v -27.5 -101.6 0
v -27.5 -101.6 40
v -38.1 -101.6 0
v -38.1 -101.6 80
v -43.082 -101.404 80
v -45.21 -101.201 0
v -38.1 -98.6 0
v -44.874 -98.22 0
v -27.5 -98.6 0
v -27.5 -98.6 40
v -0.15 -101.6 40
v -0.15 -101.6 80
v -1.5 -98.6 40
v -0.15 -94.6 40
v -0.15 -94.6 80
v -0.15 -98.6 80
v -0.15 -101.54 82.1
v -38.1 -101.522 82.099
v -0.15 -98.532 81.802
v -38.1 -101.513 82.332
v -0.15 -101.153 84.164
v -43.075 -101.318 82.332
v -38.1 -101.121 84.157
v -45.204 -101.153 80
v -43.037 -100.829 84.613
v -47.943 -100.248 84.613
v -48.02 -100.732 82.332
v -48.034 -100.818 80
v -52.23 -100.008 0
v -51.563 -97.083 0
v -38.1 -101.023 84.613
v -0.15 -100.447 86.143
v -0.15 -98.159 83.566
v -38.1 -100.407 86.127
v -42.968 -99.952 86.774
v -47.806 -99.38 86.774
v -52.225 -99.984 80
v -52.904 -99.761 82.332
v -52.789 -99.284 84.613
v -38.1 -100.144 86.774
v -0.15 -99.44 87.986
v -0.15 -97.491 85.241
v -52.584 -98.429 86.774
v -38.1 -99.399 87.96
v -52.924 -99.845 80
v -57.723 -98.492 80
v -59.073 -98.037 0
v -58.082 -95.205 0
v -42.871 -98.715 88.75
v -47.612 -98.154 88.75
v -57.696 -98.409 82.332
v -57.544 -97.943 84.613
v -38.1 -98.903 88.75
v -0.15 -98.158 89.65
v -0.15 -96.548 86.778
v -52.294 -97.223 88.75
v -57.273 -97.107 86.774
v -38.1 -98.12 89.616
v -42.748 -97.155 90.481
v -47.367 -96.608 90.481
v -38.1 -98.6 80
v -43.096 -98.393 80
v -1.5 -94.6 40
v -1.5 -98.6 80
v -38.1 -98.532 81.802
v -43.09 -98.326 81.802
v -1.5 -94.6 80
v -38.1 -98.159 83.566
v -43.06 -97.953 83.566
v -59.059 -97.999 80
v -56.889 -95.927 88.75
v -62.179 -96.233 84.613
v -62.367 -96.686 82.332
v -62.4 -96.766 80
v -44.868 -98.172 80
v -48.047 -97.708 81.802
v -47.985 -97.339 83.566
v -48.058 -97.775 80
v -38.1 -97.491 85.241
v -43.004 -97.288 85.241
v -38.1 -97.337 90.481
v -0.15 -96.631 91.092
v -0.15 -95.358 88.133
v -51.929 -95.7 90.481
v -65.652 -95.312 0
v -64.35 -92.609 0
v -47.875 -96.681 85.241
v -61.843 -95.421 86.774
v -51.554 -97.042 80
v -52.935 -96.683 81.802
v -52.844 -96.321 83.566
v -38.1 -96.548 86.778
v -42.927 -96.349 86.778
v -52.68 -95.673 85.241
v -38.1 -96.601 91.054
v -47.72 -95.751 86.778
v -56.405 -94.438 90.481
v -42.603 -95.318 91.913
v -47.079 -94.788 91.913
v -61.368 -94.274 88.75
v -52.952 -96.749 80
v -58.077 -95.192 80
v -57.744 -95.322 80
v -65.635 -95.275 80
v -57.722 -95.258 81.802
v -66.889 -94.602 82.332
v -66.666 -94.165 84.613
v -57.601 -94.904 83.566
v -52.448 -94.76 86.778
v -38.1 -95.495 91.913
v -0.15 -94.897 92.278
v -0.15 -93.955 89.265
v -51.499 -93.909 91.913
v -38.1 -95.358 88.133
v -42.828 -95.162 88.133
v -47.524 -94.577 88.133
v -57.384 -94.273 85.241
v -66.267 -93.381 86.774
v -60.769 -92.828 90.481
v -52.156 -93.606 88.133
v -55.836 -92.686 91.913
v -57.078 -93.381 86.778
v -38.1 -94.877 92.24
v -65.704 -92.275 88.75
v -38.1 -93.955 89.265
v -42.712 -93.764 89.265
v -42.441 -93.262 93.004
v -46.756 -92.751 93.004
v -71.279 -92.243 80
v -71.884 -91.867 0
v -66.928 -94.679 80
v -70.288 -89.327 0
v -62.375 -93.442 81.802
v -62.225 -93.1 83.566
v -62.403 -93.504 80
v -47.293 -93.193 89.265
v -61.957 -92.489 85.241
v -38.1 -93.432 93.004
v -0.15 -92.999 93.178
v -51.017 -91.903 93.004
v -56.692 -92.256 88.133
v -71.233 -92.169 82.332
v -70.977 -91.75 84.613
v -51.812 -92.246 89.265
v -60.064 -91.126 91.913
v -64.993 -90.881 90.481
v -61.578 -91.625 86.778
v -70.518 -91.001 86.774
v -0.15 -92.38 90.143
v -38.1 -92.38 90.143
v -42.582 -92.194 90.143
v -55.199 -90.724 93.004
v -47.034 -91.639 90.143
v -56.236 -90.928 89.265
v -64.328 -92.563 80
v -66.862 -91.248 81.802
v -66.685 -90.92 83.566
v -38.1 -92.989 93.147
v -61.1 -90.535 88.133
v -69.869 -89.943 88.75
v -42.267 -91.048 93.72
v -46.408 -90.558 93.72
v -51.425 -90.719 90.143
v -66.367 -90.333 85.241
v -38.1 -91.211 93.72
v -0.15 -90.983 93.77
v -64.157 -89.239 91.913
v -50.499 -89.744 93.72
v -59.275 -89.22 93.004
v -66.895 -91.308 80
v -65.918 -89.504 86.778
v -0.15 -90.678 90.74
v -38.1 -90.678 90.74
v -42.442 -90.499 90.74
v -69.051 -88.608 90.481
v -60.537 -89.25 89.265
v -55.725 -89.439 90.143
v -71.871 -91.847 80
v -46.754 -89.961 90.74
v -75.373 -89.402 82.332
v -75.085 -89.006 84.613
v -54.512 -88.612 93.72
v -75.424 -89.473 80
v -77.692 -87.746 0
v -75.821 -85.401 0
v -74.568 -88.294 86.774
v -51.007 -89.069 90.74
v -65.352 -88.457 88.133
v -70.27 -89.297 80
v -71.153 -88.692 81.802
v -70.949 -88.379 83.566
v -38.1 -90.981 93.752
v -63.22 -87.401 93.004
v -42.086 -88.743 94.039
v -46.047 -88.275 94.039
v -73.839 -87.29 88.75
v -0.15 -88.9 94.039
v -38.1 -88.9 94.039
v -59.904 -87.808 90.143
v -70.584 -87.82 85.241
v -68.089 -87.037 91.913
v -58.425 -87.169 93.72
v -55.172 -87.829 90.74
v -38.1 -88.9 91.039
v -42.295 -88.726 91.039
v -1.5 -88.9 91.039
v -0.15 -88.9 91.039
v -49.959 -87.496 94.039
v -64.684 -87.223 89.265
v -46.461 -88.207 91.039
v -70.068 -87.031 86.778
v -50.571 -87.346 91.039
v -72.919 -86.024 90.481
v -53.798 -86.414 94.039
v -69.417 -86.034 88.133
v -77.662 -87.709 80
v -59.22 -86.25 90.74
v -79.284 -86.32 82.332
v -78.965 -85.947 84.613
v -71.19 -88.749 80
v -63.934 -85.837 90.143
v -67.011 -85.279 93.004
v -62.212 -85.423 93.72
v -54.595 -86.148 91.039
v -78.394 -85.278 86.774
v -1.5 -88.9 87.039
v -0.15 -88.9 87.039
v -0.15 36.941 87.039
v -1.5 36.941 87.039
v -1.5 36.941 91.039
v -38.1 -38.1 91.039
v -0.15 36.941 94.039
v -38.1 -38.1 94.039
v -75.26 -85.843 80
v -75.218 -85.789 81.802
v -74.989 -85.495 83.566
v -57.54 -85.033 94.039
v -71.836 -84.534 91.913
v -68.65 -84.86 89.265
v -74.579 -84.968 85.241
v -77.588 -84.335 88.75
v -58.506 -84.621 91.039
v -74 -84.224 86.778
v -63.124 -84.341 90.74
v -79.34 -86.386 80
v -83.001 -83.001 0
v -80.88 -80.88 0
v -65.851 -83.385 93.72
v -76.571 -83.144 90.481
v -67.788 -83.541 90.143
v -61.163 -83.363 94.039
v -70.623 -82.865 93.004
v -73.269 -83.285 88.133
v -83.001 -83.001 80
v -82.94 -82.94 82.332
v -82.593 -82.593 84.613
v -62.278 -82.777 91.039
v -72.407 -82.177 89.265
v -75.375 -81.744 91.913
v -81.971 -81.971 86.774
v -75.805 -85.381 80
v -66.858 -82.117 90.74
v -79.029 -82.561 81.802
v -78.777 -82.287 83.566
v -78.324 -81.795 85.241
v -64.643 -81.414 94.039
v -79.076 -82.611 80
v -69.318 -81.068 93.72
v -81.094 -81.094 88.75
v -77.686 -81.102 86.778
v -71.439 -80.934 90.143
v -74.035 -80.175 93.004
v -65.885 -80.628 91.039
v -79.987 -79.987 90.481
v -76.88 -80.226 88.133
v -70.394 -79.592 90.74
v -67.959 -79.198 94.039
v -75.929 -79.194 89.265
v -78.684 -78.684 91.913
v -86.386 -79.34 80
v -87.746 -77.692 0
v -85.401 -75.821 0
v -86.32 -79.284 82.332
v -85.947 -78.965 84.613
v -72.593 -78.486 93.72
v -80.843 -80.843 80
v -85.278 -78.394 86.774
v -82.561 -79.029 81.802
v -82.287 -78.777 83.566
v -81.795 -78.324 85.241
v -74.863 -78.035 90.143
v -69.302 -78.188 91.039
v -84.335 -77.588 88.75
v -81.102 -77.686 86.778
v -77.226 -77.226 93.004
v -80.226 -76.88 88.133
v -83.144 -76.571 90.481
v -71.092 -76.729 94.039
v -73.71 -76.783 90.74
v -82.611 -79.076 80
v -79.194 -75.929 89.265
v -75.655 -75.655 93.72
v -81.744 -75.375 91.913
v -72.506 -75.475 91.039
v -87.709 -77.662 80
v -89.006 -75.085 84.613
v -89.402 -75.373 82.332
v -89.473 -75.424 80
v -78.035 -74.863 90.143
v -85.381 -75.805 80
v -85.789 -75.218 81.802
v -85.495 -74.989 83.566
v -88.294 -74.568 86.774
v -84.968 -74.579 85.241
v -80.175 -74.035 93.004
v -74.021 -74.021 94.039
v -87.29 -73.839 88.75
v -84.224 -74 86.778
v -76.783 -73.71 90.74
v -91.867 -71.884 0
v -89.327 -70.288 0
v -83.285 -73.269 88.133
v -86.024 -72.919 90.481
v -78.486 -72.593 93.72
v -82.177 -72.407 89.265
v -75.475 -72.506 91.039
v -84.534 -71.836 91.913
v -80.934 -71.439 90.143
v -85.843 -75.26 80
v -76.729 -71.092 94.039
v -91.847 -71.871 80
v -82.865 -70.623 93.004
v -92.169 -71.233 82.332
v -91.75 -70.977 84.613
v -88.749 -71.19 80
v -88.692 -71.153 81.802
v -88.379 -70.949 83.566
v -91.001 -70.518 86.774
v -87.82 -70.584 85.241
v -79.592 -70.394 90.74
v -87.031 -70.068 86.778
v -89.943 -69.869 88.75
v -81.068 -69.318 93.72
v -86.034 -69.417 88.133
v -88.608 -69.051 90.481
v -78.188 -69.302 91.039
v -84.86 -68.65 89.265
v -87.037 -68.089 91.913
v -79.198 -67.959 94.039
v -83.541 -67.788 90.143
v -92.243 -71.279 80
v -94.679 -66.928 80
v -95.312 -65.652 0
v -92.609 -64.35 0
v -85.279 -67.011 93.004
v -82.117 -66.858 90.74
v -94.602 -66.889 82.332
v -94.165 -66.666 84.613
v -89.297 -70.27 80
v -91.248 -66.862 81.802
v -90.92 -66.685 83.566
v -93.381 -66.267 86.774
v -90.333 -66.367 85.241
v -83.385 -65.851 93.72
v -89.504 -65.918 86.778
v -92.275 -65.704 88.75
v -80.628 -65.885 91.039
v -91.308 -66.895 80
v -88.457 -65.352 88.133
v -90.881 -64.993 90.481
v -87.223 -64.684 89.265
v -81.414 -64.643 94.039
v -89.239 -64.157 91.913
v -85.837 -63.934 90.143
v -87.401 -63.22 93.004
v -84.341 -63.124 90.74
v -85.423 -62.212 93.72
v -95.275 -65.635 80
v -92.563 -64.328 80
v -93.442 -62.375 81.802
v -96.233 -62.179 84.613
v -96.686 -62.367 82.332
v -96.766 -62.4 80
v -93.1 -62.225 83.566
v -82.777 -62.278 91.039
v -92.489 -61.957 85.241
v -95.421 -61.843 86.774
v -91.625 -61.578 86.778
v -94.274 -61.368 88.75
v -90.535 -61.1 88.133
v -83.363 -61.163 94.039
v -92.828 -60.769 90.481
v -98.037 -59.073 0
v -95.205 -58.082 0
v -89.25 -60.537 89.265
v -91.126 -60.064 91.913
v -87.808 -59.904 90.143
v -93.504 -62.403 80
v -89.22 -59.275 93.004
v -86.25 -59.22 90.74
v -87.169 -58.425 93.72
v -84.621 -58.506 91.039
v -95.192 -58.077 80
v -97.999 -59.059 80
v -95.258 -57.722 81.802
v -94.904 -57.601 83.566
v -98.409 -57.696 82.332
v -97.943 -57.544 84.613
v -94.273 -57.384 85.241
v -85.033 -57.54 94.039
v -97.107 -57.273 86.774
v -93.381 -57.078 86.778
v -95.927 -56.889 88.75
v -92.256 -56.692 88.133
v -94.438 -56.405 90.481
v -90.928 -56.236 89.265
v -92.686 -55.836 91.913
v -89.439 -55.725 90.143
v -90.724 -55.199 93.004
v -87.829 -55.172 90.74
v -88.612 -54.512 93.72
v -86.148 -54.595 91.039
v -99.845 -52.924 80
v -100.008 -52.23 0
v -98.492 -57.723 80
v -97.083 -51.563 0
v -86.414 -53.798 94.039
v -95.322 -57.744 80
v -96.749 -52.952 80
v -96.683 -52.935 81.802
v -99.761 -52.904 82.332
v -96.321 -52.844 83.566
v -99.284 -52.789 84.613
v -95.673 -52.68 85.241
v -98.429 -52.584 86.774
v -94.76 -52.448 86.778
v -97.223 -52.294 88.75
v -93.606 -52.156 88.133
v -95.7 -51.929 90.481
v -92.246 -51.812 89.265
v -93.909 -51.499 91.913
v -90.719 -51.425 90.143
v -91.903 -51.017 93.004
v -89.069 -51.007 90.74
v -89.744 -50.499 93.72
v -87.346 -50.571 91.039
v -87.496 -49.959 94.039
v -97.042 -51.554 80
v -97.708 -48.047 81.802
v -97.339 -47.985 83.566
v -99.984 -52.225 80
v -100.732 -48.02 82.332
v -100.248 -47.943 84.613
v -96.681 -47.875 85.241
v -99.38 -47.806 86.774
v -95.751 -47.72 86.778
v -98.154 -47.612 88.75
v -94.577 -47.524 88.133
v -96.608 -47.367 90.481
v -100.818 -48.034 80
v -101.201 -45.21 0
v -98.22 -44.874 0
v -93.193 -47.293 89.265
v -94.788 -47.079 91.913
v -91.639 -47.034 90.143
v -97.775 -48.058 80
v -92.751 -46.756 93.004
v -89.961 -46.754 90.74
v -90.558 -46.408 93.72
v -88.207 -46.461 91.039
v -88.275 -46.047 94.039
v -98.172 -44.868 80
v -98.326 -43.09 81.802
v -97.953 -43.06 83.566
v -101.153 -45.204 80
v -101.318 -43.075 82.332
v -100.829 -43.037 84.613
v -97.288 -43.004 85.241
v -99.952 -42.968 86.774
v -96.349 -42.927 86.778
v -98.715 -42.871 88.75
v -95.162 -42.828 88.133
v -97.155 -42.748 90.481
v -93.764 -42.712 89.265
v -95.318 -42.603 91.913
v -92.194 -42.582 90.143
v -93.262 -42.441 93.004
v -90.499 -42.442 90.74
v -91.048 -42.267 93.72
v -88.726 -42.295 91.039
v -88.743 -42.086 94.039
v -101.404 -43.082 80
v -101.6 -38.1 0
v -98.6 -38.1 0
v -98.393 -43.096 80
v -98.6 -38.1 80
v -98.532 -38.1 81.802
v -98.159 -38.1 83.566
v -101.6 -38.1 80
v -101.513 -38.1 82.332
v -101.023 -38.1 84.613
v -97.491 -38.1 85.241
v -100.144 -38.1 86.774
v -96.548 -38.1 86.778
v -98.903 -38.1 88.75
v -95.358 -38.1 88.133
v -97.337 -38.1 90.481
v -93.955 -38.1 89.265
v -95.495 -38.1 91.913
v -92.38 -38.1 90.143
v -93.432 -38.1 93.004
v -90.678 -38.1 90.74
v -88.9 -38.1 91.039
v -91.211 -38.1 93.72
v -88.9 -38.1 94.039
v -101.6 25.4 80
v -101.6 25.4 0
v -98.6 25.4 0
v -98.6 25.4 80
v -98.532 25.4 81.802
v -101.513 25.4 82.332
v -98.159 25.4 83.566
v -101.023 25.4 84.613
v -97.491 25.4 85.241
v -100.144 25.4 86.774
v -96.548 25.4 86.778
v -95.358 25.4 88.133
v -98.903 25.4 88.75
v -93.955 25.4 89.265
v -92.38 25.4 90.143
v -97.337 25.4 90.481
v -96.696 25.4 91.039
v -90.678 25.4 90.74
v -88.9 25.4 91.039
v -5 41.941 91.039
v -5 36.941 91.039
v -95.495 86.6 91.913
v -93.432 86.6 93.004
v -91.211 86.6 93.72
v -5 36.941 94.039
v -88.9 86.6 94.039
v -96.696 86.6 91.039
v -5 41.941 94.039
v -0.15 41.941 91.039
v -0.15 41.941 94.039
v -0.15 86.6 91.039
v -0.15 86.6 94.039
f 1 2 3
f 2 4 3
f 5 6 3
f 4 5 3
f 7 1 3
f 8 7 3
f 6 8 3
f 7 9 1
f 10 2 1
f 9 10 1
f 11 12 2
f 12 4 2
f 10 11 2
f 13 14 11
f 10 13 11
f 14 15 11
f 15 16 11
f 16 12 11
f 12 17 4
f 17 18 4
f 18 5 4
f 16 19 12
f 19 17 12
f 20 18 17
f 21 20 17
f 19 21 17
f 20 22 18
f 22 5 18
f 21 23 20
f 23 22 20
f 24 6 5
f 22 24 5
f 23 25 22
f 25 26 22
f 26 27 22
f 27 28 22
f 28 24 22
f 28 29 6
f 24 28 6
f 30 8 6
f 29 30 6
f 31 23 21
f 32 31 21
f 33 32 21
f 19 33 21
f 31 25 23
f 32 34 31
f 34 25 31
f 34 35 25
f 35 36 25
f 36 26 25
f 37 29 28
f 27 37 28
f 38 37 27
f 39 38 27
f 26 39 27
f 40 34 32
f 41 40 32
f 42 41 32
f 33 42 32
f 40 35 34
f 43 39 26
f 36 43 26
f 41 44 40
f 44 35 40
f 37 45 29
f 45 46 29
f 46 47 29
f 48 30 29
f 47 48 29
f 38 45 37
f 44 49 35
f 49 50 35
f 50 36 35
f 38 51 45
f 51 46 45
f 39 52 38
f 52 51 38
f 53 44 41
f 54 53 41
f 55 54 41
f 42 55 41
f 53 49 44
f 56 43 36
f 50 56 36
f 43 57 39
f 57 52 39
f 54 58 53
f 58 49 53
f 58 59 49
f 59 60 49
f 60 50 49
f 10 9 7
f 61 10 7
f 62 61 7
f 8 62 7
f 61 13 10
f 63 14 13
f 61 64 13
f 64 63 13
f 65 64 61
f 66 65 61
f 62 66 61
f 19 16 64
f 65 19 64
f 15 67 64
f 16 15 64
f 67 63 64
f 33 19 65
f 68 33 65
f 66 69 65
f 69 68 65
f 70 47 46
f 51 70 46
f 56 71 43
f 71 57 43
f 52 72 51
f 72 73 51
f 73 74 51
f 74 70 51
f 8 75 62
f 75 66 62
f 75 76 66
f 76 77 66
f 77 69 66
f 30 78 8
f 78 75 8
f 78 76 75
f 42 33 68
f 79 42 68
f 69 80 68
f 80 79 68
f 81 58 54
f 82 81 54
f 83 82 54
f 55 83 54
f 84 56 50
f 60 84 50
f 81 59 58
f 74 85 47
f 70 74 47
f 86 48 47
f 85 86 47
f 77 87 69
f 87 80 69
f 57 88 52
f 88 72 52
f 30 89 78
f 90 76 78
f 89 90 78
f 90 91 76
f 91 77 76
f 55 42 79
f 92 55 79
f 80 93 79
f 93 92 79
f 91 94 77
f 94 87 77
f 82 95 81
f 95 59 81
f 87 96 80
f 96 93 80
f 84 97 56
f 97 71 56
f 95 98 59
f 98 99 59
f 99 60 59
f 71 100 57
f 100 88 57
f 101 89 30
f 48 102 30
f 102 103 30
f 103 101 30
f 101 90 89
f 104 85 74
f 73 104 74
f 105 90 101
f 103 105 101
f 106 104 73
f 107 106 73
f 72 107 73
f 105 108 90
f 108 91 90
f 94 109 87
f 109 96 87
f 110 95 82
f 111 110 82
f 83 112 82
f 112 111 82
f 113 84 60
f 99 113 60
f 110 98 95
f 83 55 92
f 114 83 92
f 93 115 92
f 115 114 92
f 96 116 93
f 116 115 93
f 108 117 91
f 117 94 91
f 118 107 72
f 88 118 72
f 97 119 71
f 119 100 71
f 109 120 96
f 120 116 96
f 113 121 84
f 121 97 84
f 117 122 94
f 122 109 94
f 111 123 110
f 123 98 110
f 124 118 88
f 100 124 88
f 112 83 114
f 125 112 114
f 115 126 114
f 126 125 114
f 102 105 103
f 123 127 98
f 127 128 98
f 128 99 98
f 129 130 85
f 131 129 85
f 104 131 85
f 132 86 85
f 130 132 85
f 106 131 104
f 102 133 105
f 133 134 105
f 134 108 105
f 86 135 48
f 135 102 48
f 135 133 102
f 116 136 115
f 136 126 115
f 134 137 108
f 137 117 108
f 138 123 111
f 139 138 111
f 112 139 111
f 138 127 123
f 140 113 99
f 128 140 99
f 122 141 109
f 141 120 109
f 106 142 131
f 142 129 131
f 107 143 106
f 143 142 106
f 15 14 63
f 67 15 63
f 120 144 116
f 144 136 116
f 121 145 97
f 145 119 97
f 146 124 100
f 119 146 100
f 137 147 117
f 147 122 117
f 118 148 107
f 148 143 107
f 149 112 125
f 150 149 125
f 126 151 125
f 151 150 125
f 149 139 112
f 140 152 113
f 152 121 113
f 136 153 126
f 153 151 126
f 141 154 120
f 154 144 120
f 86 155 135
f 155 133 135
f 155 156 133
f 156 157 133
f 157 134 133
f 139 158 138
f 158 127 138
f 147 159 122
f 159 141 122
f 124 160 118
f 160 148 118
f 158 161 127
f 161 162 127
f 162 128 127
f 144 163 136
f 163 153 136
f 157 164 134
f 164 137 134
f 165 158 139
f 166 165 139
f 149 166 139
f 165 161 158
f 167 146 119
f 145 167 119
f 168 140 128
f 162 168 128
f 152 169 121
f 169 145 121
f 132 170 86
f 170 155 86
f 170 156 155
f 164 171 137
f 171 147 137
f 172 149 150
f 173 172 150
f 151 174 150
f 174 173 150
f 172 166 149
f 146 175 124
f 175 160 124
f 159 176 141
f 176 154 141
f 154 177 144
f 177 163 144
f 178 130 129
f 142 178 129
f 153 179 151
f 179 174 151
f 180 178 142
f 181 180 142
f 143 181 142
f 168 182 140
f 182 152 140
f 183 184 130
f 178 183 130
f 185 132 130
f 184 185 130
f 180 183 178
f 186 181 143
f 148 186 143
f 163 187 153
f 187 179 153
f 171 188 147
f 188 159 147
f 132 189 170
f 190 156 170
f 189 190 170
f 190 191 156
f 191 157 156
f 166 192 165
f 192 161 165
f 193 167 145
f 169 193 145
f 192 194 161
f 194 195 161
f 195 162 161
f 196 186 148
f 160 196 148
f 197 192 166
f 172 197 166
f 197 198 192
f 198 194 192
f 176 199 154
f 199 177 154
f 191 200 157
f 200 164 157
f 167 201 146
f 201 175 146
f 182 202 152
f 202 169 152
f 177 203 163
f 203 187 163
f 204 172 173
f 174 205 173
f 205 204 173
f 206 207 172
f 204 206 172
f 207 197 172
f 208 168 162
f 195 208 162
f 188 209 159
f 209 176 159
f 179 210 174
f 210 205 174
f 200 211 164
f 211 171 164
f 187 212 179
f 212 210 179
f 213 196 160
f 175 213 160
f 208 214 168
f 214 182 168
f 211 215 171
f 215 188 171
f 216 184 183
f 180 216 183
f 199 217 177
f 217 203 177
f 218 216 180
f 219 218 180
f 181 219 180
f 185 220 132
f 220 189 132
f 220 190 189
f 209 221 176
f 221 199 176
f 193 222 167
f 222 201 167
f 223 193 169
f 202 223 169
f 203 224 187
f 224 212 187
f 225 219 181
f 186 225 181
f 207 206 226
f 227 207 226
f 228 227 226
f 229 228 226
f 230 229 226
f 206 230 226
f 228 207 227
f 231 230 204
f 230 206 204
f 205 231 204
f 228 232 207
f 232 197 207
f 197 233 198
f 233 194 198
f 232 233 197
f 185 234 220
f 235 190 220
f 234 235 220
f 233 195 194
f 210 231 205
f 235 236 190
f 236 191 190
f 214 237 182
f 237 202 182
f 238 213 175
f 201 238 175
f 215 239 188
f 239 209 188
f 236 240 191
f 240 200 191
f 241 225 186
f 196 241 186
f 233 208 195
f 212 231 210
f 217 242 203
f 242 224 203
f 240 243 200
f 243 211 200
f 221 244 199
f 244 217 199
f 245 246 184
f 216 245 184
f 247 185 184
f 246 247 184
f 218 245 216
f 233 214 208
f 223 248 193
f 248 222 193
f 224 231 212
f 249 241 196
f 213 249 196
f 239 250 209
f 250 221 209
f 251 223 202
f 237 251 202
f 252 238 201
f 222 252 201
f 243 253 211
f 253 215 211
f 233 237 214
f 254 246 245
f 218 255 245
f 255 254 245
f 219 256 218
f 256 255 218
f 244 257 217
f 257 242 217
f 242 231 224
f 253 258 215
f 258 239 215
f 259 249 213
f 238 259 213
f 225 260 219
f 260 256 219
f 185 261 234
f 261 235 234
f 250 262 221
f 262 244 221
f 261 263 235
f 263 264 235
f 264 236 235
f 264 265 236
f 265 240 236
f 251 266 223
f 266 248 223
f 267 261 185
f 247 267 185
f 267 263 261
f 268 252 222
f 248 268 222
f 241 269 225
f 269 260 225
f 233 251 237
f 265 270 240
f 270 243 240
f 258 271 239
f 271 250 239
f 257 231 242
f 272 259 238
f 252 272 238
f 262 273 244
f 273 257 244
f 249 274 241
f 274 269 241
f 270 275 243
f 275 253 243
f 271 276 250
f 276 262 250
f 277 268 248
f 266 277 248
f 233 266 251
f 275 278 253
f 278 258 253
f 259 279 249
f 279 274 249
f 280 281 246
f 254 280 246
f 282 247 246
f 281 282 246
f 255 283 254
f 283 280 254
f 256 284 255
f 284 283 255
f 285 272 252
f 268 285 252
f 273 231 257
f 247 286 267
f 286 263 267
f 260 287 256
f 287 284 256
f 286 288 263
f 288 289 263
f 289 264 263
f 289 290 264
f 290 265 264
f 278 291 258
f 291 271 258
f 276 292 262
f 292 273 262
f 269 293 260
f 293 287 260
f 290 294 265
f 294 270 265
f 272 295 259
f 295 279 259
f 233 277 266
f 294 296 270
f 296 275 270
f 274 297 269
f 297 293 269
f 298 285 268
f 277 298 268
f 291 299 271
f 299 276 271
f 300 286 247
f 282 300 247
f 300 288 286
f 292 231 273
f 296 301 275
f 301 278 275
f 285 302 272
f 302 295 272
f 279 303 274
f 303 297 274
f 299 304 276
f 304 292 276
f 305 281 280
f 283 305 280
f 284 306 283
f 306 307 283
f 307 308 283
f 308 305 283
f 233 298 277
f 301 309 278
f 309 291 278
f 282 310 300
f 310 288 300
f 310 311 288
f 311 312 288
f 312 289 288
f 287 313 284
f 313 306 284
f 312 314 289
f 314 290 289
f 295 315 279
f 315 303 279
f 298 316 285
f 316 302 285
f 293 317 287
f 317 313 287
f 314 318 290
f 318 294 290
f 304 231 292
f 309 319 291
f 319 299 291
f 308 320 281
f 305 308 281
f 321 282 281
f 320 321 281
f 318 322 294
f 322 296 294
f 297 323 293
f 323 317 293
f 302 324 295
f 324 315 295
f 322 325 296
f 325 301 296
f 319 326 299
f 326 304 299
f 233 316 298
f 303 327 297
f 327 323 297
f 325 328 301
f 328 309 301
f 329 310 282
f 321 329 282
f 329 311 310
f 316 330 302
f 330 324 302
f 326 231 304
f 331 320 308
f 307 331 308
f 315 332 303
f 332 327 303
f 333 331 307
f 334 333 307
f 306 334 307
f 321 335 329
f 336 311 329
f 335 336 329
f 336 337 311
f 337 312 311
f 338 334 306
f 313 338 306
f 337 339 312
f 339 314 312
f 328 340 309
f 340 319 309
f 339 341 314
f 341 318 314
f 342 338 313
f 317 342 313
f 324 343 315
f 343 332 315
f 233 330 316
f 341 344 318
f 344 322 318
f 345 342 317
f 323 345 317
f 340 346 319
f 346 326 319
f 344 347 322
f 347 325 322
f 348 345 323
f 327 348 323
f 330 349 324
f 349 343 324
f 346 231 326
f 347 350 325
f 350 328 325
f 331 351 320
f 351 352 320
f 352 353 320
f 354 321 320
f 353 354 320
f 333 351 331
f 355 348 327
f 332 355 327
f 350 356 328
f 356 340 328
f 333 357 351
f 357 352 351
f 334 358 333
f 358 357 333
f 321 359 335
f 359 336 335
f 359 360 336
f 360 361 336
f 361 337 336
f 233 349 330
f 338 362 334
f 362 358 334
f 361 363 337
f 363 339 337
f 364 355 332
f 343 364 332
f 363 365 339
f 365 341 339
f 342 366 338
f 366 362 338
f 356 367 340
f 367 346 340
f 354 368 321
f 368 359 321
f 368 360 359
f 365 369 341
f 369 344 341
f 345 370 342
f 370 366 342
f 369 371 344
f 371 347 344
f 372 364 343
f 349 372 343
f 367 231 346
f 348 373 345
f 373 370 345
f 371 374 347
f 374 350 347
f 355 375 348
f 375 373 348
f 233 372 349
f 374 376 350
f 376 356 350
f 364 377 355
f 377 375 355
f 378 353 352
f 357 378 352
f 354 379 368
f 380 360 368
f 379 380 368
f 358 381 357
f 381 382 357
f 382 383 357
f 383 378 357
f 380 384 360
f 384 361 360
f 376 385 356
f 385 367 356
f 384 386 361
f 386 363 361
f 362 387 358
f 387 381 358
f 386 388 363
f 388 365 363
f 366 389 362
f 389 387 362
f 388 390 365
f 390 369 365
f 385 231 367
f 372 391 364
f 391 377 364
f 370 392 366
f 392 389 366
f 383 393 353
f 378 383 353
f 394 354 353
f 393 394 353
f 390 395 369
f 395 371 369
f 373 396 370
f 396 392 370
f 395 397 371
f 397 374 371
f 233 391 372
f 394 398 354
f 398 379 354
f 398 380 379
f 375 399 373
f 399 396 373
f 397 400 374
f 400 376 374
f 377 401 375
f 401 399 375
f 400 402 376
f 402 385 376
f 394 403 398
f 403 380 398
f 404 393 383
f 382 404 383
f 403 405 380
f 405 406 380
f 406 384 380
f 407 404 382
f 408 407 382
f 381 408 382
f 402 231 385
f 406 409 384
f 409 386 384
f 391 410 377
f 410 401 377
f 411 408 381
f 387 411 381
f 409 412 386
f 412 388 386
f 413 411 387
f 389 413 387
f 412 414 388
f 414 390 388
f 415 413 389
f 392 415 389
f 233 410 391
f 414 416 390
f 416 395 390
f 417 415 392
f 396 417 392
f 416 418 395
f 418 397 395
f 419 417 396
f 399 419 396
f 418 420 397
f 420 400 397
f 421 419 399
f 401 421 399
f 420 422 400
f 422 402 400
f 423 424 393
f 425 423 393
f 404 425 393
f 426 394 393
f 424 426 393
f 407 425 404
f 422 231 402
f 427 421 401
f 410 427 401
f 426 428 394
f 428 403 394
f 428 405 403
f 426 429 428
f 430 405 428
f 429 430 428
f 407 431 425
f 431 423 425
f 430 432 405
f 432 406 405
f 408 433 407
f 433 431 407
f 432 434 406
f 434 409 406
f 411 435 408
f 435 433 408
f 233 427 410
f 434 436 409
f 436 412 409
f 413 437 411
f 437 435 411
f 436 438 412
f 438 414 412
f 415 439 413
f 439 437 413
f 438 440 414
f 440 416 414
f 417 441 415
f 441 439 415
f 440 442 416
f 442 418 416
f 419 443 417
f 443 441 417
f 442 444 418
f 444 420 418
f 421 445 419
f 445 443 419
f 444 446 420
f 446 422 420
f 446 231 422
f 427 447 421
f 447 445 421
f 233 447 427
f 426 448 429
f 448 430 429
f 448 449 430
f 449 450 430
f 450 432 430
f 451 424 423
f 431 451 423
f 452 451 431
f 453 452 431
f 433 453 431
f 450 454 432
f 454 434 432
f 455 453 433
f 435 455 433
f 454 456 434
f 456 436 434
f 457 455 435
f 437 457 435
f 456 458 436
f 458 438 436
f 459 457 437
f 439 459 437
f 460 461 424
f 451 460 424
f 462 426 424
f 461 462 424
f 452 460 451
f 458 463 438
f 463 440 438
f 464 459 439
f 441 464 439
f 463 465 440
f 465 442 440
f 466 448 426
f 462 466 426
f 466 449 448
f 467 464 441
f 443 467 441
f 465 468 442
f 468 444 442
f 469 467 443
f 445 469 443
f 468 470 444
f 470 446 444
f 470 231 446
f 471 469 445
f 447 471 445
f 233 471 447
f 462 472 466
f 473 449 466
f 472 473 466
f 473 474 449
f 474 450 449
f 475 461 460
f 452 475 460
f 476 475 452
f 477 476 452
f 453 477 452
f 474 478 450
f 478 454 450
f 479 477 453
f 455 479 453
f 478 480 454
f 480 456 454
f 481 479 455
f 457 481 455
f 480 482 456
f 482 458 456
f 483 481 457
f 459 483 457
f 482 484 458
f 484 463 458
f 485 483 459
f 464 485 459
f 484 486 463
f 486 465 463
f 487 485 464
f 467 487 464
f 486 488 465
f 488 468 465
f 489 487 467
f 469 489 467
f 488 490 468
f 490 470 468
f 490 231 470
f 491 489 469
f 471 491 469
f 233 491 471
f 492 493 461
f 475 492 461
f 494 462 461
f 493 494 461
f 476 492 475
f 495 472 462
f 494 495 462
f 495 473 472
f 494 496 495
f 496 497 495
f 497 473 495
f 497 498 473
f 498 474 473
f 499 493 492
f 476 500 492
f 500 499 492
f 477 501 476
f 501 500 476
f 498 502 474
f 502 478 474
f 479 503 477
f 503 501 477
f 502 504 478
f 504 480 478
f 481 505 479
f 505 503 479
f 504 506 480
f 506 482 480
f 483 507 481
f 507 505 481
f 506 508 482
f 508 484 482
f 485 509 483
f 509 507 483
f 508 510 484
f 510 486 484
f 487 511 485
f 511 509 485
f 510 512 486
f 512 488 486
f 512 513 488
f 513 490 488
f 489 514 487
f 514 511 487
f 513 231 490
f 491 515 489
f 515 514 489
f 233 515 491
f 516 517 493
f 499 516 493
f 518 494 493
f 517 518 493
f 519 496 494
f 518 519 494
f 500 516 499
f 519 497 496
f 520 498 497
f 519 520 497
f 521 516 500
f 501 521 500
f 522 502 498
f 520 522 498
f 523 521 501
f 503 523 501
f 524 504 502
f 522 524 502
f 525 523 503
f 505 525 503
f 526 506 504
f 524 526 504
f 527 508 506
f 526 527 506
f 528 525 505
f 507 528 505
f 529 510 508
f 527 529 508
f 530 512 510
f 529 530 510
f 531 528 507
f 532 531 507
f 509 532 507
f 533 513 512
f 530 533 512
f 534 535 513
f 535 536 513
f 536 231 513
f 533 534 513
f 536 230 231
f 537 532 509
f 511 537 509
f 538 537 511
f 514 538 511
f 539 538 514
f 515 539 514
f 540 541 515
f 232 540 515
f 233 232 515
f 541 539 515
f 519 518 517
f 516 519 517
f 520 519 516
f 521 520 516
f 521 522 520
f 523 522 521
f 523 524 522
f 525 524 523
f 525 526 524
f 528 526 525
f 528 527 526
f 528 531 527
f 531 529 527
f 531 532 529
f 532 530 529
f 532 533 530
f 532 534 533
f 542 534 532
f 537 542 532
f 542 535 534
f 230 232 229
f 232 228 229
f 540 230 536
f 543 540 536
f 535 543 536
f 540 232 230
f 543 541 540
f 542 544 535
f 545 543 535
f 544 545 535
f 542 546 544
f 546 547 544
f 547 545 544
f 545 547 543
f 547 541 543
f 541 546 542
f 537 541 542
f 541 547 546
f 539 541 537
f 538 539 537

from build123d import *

# Parameters (mm, degrees)
BOSS_EXTRUDE1_DEPTH = 60
SKETCH6_W           = 76.2
SKETCH6_H           = 139.7
BOSS_EXTRUDE3_DEPTH = 3
SKETCH7_W           = 254.695348458
SKETCH7_H           = 135.329086622
CUT_EXTRUDE1_DEPTH  = 76.2
SKETCH8_W           = 10
SKETCH8_H           = 5
CUT_EXTRUDE2_DEPTH  = 172.74190537
SKETCH9_W           = 55
SKETCH9_H           = 40
CUT_EXTRUDE3_DEPTH  = 246.885251985
SKETCH10_W          = 200.764393162
SKETCH10_H          = 14.388440844
CUT_EXTRUDE4_DEPTH  = 15
BOSS_EXTRUDE4_DEPTH = 4
BOSS_EXTRUDE5_DEPTH = 4
SKETCH13_W          = 181.59007752
SKETCH13_H          = 354.992238287
CUT_EXTRUDE5_DEPTH  = 101.75


with BuildPart() as part:
    # Sketch1 → Boss-Extrude1 (new body)
    with BuildSketch(Plane.XY):
        with BuildLine():
            Line((-101.6, 101.6), (-101.6, -38.1))
            ThreePointArc((-101.6, -38.1), (-83.001280605, -83.001280605), (-38.1, -101.6))
            Line((-38.1, -101.6), (38.1, -101.6))
            ThreePointArc((38.1, -101.6), (83.001280605, -83.001280605), (101.6, -38.1))
            Line((101.6, -38.1), (101.6, 101.6))
            Line((101.6, 101.6), (-101.6, 101.6))
        make_face()
        with BuildLine():
            Line((-98.6, 98.6), (-98.6, -38.1))
            ThreePointArc((-98.6, -38.1), (-80.879960262, -80.879960262), (-38.1, -98.6))
            Line((-38.1, -98.6), (38.1, -98.6))
            ThreePointArc((38.1, -98.6), (80.879960262, -80.879960262), (98.6, -38.1))
            Line((98.6, -38.1), (98.6, 98.6))
            Line((98.6, 98.6), (-98.6, 98.6))
        make_face(mode=Mode.SUBTRACT)
    extrude(amount=BOSS_EXTRUDE1_DEPTH)

    # Sweep2: sweep along a path in Sketch5
    with BuildLine(Plane.XY.offset(60)) as sweep2_path:
        Line((-100.1, 101.6), (-100.1, -38.1))
        ThreePointArc((-100.1, -38.1), (-81.940620434, -81.940620434), (-38.1, -100.1))
        Line((-38.1, -100.1), (38.1, -100.1))
        ThreePointArc((38.1, -100.1), (81.940620434, -81.940620434), (100.1, -38.1))
        Line((100.1, -38.1), (100.1, 101.6))
    # Sketch3 → Sweep2 (sweep)
    with BuildSketch(Plane(origin=(0, 101.6, 0), x_dir=(1, 0, 0), z_dir=(0, 1, 0))):
        with BuildLine():
            Line((-38.1, -91.039099262), (-88.9, -91.039099262))
            ThreePointArc((-88.9, -91.039099262), (-95.981959893, -87.480761361), (-98.6, -80))
            Line((-98.6, -80), (-98.6, -60))
            Line((-98.6, -60), (-101.6, -60))
            Line((-101.6, -60), (-101.6, -80))
            ThreePointArc((-101.6, -80), (-98.157592659, -89.649805752), (-88.9, -94.039099262))
            Line((-88.9, -94.039099262), (-38.1, -94.039099262))
            Line((-38.1, -94.039099262), (-38.1, -91.039099262))
        make_face()
    sweep(path=sweep2_path.line)

    # Sketch6 → Boss-Extrude3 (add)
    with BuildSketch(Plane.XY.offset(94.039099262)):
        with Locations((0, 31.75)):
            Rectangle(SKETCH6_W, SKETCH6_H)
    extrude(amount=-BOSS_EXTRUDE3_DEPTH)

    # Sketch7 → Cut-Extrude1 (cut)
    with BuildSketch(Plane(origin=(0, 101.6, 0), x_dir=(1, 0, 0), z_dir=(0, 1, 0))):
        with Locations((-4.889183354, -23.374555951)):
            Rectangle(SKETCH7_W, SKETCH7_H)
    extrude(amount=-CUT_EXTRUDE1_DEPTH, mode=Mode.SUBTRACT)

    # Sketch8 → Cut-Extrude2 (cut, through all)
    with BuildSketch(Plane.XY.offset(94.039099262)):
        with Locations((0, 39.440517612)):
            Rectangle(SKETCH8_W, SKETCH8_H)
    extrude(amount=-CUT_EXTRUDE2_DEPTH, mode=Mode.SUBTRACT)

    # Sketch9 → Cut-Extrude3 (cut, through all)
    with BuildSketch(Plane(origin=(0, -101.6, 0), x_dir=(-1, 0, 0), z_dir=(0, -1, 0))):
        with Locations((0, -20)):
            Rectangle(SKETCH9_W, SKETCH9_H)
    extrude(amount=-CUT_EXTRUDE3_DEPTH, mode=Mode.SUBTRACT)

    # Sketch10 → Cut-Extrude4 (cut)
    with BuildSketch(Plane(origin=(0, 101.6, 0), x_dir=(1, 0, 0), z_dir=(0, 1, 0))):
        with Locations((0, -94.039099262)):
            Rectangle(SKETCH10_W, SKETCH10_H)
    extrude(amount=-CUT_EXTRUDE4_DEPTH, mode=Mode.SUBTRACT)

    # Sketch11 → Boss-Extrude4 (add)
    with BuildSketch(Plane(origin=(0, -98.6, 0), x_dir=(1, 0, 0), z_dir=(0, 1, 0))):
        Polygon((0, -80), (1.5, -80), (1.5, -40), (0, -40), (-1.5, -40), (-1.5, -80), align=None)
    extrude(amount=BOSS_EXTRUDE4_DEPTH)

    # Sketch12 → Boss-Extrude5 (add)
    with BuildSketch(Plane(origin=(0, 0, 91.039099262), x_dir=(-1, 0, 0), z_dir=(0, 0, -1))):
        Polygon((-1.5, -88.9), (0, -88.9), (1.5, -88.9), (1.5, 36.940517612), (-1.5, 36.940517612), align=None)
    extrude(amount=BOSS_EXTRUDE5_DEPTH)

    # Sketch13 → Cut-Extrude5 (cut)
    with BuildSketch(Plane(origin=(101.6, 0, 0), x_dir=(0, 0, -1), z_dir=(1, 0, 0))):
        with Locations((-39.565471337, -8.440264941)):
            Rectangle(SKETCH13_W, SKETCH13_H)
    extrude(amount=-CUT_EXTRUDE5_DEPTH, mode=Mode.SUBTRACT)


with BuildPart() as cut_extrude5_kept_piece:
    # of the separate pieces the step leaves, the one the design keeps (cut_extrude5_pieces_kept)
    add(part.part.solids().sort_by_distance((-101.6, 25.4, 0))[0])


solid = cut_extrude5_kept_piece.part
